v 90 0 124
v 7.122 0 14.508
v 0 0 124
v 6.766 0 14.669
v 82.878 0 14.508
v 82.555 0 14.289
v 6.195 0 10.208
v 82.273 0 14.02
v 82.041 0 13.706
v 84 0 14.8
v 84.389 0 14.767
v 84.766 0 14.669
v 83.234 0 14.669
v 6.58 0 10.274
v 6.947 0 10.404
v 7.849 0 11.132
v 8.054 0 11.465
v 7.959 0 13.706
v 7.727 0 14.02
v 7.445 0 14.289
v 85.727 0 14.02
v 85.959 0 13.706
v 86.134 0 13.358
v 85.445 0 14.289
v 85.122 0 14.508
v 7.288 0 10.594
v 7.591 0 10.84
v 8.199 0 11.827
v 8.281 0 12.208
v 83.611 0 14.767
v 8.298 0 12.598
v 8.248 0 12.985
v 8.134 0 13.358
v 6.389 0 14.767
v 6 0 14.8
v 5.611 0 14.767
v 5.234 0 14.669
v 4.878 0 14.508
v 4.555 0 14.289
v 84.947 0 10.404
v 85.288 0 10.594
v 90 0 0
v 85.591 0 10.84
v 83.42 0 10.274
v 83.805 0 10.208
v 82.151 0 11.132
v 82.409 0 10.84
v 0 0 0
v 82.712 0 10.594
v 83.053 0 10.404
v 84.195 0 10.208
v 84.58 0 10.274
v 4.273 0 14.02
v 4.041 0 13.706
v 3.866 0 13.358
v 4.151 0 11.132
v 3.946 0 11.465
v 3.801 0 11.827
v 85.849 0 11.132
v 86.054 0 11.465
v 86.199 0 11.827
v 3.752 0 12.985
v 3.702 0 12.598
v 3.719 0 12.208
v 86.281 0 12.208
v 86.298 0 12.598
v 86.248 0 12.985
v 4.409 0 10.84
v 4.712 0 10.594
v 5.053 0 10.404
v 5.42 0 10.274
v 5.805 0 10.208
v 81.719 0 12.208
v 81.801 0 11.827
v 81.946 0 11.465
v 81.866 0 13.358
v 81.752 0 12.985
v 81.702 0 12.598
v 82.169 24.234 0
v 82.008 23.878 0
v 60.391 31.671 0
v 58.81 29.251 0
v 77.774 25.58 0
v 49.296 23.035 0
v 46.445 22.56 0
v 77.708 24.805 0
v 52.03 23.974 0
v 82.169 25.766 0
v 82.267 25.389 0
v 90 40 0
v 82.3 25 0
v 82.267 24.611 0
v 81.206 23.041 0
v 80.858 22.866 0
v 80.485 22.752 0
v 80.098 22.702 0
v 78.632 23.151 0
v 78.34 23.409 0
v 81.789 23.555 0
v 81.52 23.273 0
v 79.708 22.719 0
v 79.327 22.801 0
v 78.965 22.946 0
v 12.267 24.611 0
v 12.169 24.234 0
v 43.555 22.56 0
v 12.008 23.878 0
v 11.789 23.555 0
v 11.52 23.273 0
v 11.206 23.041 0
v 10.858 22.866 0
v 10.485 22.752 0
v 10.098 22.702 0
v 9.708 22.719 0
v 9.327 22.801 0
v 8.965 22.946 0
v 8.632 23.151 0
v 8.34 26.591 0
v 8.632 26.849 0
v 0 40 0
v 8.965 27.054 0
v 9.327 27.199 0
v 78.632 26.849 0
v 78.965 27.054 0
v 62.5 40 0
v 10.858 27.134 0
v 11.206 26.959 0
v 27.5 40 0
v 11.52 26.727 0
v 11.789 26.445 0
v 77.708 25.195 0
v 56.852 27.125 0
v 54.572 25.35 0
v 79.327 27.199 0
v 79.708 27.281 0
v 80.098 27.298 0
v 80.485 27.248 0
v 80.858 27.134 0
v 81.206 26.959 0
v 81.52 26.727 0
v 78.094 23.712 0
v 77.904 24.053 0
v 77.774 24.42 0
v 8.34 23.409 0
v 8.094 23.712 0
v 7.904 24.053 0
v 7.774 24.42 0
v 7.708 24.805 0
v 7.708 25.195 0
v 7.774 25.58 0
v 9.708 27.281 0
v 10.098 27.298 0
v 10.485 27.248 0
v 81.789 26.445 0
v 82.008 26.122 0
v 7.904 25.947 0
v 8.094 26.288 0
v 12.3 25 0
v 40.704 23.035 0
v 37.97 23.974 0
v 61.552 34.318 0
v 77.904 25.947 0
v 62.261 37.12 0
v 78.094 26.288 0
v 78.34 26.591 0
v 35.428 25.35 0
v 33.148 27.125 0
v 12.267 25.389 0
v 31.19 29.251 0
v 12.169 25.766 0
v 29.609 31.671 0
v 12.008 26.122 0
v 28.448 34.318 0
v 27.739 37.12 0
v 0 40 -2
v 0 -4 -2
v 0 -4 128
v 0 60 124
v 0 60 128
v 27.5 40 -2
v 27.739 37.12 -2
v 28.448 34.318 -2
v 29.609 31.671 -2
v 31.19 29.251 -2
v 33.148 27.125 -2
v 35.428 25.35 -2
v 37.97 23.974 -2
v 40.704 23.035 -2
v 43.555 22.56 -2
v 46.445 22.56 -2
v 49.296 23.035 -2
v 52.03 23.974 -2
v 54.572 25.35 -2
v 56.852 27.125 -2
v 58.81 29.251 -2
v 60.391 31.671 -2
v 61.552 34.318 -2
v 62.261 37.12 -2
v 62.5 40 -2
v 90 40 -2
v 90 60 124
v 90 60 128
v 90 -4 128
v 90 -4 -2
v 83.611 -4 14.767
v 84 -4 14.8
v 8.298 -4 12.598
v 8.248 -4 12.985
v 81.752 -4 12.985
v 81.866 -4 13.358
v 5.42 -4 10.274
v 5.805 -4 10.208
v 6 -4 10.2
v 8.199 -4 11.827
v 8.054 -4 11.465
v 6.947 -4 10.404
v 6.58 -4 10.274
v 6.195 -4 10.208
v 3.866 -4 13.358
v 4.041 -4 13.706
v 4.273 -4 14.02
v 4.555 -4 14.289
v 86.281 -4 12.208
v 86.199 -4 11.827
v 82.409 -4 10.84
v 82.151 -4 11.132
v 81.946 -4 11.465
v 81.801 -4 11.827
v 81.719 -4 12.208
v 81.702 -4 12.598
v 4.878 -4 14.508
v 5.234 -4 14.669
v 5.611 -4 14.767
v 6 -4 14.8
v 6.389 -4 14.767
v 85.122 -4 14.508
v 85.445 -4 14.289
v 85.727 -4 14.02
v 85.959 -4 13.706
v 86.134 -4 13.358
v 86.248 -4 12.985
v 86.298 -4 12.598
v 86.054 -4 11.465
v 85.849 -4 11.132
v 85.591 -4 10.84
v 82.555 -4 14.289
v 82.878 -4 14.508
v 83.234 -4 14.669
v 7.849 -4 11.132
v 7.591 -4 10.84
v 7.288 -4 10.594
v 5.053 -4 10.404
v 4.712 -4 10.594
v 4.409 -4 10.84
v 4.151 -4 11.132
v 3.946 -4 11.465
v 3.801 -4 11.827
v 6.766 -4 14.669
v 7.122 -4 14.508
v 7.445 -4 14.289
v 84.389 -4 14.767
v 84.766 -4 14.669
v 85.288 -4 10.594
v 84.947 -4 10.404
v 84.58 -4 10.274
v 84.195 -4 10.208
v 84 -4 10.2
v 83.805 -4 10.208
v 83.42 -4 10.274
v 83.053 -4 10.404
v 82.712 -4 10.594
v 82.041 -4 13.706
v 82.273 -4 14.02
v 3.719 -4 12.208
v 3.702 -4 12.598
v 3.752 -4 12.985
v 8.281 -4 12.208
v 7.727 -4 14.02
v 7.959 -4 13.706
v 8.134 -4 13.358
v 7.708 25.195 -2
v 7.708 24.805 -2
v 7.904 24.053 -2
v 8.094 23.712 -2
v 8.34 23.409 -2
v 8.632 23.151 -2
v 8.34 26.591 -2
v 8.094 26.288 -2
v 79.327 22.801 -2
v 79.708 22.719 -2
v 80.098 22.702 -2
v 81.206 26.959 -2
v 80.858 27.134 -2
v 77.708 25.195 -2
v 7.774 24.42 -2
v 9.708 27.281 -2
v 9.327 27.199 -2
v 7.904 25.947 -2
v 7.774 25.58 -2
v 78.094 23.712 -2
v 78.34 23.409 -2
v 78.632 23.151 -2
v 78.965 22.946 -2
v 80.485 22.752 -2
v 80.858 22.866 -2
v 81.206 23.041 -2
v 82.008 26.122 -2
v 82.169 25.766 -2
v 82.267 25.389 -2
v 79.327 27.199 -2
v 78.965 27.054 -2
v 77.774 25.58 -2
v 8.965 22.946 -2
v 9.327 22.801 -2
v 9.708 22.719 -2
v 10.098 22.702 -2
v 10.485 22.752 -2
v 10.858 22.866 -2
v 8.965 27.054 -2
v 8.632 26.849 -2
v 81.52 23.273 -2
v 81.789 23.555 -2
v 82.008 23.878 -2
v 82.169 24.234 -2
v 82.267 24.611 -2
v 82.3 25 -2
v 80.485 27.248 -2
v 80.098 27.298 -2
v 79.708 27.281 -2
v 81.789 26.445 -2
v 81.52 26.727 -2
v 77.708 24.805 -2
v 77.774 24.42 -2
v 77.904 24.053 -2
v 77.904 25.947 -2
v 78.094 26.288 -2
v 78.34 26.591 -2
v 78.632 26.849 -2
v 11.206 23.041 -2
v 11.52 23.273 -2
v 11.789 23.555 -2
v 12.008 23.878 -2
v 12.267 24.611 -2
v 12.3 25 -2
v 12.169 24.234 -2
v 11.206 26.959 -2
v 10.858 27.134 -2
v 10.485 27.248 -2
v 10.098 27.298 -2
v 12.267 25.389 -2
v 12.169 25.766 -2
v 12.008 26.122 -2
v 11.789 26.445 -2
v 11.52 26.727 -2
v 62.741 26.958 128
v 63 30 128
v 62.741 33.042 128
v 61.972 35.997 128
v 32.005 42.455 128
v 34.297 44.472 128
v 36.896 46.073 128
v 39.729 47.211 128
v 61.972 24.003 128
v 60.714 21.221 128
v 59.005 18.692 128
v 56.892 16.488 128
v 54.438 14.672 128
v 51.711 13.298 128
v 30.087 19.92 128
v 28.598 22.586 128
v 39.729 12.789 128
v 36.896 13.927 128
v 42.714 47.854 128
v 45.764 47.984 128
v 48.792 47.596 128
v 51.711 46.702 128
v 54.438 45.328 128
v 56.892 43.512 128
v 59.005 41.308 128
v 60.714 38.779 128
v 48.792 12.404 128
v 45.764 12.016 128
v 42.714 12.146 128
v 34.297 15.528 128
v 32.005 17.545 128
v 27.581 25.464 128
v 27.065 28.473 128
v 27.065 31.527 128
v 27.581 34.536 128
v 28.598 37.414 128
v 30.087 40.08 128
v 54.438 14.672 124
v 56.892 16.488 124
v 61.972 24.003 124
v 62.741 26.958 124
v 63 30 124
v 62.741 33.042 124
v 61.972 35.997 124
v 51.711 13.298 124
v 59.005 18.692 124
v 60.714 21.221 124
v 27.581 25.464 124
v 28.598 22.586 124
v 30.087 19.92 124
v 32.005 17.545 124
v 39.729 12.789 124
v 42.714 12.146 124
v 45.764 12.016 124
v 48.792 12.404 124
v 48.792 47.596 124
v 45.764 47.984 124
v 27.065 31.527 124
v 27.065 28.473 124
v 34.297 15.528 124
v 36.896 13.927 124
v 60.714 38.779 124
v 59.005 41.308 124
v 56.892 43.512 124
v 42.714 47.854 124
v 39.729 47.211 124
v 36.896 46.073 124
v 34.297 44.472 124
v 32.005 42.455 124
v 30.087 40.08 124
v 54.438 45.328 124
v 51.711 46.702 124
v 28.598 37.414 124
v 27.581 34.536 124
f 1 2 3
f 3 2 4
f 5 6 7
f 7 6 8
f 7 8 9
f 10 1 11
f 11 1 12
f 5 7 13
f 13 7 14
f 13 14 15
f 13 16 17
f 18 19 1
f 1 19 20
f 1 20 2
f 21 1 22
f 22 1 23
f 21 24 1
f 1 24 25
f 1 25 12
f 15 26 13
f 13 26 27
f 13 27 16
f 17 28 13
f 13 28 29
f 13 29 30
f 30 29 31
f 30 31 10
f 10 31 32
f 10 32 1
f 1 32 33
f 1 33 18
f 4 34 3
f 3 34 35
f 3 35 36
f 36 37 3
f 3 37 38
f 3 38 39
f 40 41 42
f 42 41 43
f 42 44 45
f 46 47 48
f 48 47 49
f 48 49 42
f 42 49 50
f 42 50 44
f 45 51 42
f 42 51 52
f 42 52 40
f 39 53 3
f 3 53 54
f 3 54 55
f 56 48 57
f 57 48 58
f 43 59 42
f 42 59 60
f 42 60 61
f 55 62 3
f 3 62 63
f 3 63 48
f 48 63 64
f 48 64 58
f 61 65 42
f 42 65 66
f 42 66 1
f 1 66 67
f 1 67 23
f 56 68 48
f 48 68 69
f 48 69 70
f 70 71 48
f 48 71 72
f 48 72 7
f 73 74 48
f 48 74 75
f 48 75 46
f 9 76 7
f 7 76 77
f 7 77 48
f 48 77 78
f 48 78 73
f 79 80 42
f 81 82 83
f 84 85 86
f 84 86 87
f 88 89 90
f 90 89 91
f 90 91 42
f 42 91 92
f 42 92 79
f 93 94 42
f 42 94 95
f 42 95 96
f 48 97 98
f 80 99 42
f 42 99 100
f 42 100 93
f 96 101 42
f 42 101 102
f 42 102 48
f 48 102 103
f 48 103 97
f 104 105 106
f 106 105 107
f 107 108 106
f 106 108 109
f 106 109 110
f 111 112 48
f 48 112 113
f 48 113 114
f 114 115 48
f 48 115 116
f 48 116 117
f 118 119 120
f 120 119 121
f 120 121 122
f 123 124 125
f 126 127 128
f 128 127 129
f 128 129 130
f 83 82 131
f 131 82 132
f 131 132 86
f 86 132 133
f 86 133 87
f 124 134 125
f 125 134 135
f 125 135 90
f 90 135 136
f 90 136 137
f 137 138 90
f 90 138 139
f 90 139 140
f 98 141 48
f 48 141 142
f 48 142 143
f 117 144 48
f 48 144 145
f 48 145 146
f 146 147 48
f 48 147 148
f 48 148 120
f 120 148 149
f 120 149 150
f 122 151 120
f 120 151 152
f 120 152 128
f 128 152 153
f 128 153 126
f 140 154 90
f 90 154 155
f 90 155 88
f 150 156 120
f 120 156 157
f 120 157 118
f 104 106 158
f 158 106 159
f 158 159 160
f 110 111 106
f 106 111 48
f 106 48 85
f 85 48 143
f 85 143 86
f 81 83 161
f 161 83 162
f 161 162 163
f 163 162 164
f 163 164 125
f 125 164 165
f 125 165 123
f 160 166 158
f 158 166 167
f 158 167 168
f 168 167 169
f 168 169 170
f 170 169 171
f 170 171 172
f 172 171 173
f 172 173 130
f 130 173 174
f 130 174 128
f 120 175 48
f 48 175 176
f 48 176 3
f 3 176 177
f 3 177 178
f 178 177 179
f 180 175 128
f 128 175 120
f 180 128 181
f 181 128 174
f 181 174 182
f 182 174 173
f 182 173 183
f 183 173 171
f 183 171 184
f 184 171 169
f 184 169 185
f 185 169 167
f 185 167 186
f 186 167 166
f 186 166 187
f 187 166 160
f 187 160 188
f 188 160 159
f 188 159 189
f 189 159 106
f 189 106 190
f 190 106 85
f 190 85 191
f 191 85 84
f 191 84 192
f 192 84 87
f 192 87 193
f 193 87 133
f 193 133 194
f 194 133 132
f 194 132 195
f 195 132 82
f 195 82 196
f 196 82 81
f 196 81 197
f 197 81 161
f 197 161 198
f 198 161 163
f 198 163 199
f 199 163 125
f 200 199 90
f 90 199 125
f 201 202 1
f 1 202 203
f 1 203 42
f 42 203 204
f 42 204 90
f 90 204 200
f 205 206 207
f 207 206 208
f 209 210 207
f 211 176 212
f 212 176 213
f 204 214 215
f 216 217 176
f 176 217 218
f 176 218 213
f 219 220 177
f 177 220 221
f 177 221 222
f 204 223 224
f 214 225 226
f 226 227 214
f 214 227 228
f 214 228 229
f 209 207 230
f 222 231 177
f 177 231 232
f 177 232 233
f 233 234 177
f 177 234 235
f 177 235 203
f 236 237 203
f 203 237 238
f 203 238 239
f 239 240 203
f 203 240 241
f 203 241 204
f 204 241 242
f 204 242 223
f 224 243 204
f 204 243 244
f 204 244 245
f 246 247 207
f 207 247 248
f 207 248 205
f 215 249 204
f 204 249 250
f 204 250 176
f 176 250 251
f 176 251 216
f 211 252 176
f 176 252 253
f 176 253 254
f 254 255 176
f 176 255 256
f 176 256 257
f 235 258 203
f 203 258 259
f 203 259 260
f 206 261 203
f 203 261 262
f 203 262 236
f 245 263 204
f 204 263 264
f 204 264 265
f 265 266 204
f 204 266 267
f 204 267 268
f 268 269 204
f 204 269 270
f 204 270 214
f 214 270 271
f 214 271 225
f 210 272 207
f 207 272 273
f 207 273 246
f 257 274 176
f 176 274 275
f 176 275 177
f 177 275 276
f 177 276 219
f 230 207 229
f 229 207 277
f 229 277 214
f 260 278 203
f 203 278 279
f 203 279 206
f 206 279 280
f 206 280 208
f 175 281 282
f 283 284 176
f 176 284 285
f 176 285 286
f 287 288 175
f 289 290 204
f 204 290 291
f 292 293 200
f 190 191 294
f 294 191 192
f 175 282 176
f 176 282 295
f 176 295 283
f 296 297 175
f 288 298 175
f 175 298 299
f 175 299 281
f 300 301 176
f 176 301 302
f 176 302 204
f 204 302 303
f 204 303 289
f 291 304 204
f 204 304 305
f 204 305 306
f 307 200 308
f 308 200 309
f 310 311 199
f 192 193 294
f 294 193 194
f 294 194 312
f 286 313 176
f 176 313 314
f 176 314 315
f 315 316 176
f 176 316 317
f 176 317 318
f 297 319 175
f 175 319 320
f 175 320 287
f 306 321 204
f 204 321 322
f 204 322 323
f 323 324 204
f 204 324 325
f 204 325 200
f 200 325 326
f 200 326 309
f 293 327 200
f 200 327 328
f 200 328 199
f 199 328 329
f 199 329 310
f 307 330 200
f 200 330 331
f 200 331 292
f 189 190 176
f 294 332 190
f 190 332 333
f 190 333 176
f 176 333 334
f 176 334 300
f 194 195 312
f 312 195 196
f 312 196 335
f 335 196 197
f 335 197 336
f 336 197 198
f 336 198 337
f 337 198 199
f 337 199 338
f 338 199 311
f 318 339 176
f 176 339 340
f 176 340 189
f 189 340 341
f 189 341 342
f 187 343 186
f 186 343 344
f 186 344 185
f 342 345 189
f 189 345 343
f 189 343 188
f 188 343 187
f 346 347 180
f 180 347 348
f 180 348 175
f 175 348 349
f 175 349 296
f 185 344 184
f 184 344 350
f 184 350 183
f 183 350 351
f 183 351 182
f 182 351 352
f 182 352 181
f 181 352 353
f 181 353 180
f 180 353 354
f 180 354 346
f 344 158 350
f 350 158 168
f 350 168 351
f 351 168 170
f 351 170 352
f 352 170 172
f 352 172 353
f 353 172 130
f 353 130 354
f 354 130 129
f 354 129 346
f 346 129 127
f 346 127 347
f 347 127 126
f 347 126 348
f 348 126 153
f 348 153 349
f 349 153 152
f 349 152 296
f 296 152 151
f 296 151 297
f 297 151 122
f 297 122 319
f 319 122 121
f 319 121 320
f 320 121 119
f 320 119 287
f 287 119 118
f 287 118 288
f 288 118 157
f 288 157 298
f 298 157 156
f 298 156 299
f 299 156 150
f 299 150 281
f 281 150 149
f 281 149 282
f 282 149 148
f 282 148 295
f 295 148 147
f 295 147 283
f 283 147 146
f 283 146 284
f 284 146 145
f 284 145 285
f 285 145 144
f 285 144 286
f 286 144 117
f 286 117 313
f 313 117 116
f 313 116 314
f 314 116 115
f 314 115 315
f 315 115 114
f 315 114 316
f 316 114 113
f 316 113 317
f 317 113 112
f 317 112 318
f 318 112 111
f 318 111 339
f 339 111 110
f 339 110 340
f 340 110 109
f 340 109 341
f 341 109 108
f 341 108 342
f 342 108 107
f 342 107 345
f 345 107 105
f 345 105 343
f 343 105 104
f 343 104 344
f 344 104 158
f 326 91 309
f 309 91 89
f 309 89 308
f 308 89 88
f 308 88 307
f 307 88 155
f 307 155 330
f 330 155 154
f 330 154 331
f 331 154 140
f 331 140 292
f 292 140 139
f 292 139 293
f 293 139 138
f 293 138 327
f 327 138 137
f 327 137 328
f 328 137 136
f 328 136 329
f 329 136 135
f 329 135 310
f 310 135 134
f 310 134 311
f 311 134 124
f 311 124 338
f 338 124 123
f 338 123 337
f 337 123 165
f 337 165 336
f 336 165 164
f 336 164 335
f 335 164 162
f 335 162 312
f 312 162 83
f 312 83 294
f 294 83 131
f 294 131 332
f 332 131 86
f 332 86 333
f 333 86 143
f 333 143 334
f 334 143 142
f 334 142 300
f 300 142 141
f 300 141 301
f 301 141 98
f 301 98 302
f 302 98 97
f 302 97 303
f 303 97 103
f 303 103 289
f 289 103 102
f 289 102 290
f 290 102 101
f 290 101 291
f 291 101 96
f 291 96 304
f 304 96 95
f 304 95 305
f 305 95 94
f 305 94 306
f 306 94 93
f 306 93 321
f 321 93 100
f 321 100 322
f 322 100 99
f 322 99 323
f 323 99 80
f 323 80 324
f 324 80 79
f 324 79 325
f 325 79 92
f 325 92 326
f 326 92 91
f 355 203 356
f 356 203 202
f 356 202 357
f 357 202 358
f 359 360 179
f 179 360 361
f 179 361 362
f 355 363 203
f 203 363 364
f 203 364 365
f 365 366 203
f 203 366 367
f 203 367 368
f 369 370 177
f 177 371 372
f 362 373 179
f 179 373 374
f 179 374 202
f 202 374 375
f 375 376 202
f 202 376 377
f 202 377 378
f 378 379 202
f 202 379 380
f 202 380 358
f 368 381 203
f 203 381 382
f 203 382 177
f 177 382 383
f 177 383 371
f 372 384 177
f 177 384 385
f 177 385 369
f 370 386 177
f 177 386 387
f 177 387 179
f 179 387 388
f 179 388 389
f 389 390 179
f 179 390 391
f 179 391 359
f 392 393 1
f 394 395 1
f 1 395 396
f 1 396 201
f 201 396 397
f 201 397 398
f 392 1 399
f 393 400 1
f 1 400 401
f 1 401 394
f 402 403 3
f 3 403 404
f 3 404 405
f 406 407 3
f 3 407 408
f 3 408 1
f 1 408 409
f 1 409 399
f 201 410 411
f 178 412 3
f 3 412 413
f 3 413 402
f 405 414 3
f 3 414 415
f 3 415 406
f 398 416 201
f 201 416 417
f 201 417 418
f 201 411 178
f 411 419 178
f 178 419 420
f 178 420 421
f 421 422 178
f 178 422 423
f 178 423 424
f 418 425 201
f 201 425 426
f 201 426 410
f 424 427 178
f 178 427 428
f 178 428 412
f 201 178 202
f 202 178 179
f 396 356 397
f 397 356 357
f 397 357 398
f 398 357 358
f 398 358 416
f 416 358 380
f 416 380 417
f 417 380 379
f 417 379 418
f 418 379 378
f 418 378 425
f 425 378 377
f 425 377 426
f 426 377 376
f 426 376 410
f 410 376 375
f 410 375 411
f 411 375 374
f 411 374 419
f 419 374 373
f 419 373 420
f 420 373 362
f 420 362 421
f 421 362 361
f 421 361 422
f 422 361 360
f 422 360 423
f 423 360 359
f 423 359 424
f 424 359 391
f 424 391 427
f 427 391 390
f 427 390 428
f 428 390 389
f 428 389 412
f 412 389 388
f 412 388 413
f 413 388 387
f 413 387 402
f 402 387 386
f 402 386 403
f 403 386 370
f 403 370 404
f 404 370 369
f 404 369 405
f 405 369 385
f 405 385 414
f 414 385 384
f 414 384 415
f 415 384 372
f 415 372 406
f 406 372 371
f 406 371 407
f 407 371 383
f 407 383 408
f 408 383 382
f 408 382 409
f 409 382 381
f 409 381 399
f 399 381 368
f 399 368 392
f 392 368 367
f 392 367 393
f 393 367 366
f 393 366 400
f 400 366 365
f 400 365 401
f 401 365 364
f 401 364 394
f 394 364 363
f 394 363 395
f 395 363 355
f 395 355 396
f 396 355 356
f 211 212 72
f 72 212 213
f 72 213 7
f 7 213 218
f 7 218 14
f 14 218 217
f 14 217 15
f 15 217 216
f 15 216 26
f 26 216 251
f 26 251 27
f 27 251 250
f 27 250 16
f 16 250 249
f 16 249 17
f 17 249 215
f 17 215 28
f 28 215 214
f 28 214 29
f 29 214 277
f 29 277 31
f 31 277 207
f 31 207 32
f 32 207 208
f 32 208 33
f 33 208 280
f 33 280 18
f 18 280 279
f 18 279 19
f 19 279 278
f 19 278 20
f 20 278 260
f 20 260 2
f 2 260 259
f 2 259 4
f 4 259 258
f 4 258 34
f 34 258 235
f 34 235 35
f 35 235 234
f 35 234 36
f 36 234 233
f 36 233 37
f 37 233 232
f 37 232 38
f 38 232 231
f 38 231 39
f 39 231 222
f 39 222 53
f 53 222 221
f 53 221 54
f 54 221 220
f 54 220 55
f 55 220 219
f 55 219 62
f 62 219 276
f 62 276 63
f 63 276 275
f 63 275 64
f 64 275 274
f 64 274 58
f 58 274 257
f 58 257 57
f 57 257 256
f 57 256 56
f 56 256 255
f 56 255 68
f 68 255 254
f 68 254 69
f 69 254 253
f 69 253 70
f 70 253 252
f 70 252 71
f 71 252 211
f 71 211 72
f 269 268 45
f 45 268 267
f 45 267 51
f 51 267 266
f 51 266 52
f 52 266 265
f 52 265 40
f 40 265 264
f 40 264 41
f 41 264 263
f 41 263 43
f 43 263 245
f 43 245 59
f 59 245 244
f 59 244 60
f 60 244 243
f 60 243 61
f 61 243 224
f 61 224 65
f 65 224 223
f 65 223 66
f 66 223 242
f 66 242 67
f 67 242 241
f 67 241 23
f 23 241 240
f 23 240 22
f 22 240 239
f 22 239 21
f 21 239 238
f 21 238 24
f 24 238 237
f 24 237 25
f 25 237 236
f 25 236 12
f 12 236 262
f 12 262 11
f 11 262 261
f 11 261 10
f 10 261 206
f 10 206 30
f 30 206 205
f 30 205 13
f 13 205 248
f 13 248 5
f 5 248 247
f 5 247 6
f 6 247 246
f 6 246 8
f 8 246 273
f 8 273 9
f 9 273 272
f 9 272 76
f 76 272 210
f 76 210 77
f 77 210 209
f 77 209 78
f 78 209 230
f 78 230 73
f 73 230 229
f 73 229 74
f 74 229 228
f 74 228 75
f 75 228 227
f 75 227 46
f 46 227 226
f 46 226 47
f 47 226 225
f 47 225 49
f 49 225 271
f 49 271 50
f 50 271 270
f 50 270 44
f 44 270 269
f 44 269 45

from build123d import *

# Parameters (mm, degrees)
SKETCH1_R           = 2.3
BOSS_EXTRUDE1_DEPTH = 2
SKETCH2_W           = 90
SKETCH2_H           = 4
BOSS_EXTRUDE2_DEPTH = 128
SKETCH3_W           = 90
SKETCH3_H           = 4
BOSS_EXTRUDE3_DEPTH = 60
SKETCH4_R           = 18
CUT_EXTRUDE1_DEPTH  = 60
SKETCH5_R           = 2.3
CUT_EXTRUDE2_DEPTH  = 60


with BuildPart() as part:
    # Sketch1 → Boss-Extrude1 (new body)
    with BuildSketch(Plane.XY):
        with BuildLine():
            Line((0, 0), (0, 40))
            Line((0, 40), (27.5, 40))
            ThreePointArc((27.5, 40), (45, 22.5), (62.5, 40))
            Line((62.5, 40), (90, 40))
            Line((90, 40), (90, 0))
            Line((90, 0), (90, -4))
            Line((90, -4), (0, -4))
            Line((0, -4), (0, 0))
        make_face()
        with Locations((10, 25)):
            Circle(SKETCH1_R, mode=Mode.SUBTRACT)
        with Locations((80, 25)):
            Circle(SKETCH1_R, mode=Mode.SUBTRACT)
    extrude(amount=-BOSS_EXTRUDE1_DEPTH)

    # Sketch2 → Boss-Extrude2 (add)
    with BuildSketch(Plane.XY):
        with Locations((45, -2)):
            Rectangle(SKETCH2_W, SKETCH2_H)
    extrude(amount=BOSS_EXTRUDE2_DEPTH)

    # Sketch3 → Boss-Extrude3 (add)
    with BuildSketch(Plane(origin=(0, 0, 0), x_dir=(1, 0, 0), z_dir=(0, 1, 0))):
        with Locations((45, -126)):
            Rectangle(SKETCH3_W, SKETCH3_H)
    extrude(amount=BOSS_EXTRUDE3_DEPTH)

    # Sketch4 → Cut-Extrude1 (cut)
    with BuildSketch(Plane.XY.offset(128)):
        with Locations((45, 30)):
            Circle(SKETCH4_R)
    extrude(amount=-CUT_EXTRUDE1_DEPTH, mode=Mode.SUBTRACT)

    # Sketch5 → Cut-Extrude2 (cut)
    with BuildSketch(Plane(origin=(0, 0, 0), x_dir=(1, 0, 0), z_dir=(0, 1, 0))):
        with Locations(Location((6, -12.5, 0), (0, 0, 270))):
            Circle(SKETCH5_R)
        with Locations(Location((84, -12.5, 0), (0, 0, 270))):
            Circle(SKETCH5_R)
    extrude(amount=-CUT_EXTRUDE2_DEPTH, mode=Mode.SUBTRACT)


solid = part.part
